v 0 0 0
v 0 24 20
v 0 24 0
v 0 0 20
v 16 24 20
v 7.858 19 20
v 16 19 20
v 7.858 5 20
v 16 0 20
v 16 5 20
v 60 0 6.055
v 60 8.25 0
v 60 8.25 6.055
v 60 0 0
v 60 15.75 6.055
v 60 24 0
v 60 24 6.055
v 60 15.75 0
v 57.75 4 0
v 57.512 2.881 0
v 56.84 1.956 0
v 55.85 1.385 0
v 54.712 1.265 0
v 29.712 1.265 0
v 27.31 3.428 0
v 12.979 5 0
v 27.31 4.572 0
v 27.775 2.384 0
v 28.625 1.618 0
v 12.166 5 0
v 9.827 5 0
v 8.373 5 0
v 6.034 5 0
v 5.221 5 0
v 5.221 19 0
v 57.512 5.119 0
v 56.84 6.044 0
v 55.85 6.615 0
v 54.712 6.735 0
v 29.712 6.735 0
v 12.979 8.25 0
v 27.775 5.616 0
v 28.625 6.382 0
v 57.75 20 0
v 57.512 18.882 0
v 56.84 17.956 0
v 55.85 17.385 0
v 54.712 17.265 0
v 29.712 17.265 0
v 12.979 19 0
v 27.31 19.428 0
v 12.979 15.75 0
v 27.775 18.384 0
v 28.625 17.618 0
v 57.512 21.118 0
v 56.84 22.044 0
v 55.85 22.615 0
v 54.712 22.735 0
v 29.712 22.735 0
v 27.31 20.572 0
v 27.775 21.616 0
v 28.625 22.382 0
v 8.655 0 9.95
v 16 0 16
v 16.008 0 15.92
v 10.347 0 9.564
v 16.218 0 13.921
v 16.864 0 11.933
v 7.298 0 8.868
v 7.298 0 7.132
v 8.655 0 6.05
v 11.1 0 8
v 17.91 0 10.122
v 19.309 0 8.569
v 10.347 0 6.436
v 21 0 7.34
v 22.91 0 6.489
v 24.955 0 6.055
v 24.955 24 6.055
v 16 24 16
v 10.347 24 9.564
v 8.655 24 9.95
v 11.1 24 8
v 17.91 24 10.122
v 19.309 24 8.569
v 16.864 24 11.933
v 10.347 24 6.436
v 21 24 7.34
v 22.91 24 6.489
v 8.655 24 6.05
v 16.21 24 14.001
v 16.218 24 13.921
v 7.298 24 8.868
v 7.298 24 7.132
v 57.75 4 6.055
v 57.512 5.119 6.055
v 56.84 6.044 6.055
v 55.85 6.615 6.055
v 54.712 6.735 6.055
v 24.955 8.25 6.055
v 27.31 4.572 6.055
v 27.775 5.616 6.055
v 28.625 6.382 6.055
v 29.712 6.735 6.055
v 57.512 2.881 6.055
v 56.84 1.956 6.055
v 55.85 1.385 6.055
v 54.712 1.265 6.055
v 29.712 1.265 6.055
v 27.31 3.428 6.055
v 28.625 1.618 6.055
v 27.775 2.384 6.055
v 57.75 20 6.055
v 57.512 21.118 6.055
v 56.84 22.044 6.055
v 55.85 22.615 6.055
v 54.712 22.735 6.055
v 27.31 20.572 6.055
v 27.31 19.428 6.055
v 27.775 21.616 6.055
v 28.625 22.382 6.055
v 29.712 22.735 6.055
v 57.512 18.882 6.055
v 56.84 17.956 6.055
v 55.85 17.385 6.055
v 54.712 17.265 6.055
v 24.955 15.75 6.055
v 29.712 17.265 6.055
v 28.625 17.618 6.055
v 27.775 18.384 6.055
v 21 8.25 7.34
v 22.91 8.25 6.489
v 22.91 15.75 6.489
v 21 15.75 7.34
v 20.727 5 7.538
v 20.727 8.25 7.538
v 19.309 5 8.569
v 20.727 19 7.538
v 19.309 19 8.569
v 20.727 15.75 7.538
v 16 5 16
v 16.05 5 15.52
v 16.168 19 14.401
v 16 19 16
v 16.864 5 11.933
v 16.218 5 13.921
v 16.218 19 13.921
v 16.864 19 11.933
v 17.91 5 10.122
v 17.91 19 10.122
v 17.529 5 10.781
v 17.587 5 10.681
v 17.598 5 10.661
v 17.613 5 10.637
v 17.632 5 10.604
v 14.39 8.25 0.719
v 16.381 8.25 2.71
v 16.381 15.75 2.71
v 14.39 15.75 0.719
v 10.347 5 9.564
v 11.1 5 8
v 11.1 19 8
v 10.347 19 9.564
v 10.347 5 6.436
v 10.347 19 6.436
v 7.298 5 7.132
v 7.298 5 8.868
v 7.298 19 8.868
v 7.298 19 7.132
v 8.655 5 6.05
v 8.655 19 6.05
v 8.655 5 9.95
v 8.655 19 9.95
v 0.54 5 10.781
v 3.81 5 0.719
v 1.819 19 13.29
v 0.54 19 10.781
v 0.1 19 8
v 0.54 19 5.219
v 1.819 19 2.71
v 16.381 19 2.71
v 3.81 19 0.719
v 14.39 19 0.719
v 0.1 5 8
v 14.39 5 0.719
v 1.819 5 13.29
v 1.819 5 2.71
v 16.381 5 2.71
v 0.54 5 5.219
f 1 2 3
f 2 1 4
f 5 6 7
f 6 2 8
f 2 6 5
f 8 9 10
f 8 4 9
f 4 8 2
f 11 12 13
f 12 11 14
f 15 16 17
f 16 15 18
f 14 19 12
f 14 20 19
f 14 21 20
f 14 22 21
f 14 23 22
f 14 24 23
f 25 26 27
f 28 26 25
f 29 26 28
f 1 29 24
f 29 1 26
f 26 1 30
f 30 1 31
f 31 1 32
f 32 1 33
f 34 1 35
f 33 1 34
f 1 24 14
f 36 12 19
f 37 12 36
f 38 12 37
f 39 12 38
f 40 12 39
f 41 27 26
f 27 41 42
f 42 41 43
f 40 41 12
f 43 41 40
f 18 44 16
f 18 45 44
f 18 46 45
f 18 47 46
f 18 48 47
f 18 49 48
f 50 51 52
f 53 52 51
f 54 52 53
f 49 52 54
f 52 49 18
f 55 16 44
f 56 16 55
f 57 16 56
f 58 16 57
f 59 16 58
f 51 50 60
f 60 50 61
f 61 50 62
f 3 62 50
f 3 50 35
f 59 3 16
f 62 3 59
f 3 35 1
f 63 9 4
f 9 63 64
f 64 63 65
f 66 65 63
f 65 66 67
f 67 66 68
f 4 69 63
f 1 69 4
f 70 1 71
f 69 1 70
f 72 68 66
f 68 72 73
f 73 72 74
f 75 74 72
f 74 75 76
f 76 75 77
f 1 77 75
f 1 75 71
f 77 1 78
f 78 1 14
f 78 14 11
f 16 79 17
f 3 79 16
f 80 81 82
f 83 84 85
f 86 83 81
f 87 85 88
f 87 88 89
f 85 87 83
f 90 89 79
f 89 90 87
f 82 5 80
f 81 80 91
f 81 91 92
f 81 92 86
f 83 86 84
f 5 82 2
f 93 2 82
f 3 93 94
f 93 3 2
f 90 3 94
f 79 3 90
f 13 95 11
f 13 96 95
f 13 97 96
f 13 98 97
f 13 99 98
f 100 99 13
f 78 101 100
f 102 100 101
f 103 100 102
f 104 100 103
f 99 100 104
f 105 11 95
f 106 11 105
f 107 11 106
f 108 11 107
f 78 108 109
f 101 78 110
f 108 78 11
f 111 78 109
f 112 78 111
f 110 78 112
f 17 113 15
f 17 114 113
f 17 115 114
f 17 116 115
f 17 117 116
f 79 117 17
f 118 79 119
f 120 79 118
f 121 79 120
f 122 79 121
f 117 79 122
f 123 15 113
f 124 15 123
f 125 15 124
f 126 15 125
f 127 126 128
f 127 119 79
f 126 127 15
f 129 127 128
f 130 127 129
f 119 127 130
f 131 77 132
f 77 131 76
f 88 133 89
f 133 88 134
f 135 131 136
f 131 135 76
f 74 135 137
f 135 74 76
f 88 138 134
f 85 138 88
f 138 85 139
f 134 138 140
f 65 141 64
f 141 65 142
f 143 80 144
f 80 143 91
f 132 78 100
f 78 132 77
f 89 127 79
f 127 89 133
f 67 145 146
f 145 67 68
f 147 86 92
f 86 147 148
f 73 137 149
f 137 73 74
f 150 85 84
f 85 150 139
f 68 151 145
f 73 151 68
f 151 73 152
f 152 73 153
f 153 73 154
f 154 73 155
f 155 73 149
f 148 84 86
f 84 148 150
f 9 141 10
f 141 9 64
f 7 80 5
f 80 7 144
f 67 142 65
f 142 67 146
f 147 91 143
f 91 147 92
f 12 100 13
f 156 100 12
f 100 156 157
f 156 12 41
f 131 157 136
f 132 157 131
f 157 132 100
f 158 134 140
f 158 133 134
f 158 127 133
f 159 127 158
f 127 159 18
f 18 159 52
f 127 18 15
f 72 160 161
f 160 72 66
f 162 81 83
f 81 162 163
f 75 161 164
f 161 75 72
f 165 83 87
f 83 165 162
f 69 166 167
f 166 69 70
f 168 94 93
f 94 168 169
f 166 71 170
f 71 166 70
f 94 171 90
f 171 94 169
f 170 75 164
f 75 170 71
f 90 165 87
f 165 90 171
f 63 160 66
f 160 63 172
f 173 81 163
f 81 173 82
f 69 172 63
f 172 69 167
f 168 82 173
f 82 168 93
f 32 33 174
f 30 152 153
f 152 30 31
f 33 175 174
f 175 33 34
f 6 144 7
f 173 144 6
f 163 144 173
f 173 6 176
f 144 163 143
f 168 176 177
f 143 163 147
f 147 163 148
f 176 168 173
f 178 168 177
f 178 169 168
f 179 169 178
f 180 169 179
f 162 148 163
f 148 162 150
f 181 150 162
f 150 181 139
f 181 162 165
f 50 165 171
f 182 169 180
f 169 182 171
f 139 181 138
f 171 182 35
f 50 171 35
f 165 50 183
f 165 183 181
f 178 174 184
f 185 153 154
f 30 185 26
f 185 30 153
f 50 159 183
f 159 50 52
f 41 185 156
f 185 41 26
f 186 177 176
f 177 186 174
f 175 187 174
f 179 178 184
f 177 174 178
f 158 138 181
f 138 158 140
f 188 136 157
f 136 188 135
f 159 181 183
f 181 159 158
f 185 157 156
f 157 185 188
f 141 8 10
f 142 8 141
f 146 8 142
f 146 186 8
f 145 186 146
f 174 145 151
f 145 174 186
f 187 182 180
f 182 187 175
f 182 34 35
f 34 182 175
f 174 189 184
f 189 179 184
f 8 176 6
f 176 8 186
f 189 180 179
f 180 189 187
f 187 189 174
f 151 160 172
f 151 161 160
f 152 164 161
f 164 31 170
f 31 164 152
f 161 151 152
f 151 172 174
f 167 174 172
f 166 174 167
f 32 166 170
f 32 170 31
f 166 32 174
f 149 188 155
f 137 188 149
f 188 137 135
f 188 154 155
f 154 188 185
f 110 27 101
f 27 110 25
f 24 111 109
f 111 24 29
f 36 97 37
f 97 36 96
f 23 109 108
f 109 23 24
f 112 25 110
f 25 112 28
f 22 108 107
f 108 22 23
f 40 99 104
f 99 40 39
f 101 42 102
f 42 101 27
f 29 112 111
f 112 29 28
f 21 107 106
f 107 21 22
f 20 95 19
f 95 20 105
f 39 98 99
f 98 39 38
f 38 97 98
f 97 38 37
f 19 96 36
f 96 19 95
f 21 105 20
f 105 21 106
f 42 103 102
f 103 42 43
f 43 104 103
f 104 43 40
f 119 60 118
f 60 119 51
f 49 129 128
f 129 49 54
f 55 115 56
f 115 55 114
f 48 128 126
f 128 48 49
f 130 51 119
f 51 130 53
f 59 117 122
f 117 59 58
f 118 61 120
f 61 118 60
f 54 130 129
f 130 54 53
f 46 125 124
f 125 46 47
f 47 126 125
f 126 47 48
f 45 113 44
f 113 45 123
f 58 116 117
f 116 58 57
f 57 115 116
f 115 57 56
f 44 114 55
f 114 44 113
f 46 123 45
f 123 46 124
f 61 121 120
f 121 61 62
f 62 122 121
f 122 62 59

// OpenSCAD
/**
 * 
 * YIdler.scad
 * 
 * Created by Diego Viejo
 * 
 * 04/May/2016
 * 
 */



Width = 60;
Length = 24;
Height = 6;

Wall = 16;
Floor = 6;
mainDiam = 20;

IdlerDiam = 16;

beltWidth = 7.5;

YIdler();

module YIdler()
difference()
{
    cube([Width, Length, 20]);
    
    translate([Wall+mainDiam/2, -1, Floor+mainDiam/2])
    hull()
    {
        rotate([-90, 0, 0]) cylinder(d=mainDiam, h=Length+2);
        translate([0, 0, 30]) rotate([-90, 0, 0]) cylinder(d=mainDiam, h=Length+2);
        translate([50, 0, 0]) rotate([-90, 0, 0]) cylinder(d=mainDiam, h=Length+2);
    }
    
    translate([8, (Length-beltWidth)/2, -1]) cube([Width, beltWidth, 40]);
    
    translate([9.1, -1, 8]) rotate([-90, 0, 0]) cylinder(d=4, h=Length+2);
    hull()
    {
        translate([9.1, 5, 8]) rotate([-90, 0, 0]) cylinder(d=18, h=Length-10, $fn=20);
        translate([19, 5, 19]) rotate([-90, 0, 0]) cylinder(d=18, h=Length-10, $fn=20);
    }
    
    hull()
    {
        translate([Width/2, 4, -1]) cylinder(d=5.5, h=10, $fn=15);
        translate([Width-5, 4, -1]) cylinder(d=5.5, h=10, $fn=15);
    }
    hull()
    {
        translate([Width/2, Length - 4, -1]) cylinder(d=5.5, h=10, $fn=15);
        translate([Width-5, Length - 4, -1]) cylinder(d=5.5, h=10, $fn=15);
    }
}
